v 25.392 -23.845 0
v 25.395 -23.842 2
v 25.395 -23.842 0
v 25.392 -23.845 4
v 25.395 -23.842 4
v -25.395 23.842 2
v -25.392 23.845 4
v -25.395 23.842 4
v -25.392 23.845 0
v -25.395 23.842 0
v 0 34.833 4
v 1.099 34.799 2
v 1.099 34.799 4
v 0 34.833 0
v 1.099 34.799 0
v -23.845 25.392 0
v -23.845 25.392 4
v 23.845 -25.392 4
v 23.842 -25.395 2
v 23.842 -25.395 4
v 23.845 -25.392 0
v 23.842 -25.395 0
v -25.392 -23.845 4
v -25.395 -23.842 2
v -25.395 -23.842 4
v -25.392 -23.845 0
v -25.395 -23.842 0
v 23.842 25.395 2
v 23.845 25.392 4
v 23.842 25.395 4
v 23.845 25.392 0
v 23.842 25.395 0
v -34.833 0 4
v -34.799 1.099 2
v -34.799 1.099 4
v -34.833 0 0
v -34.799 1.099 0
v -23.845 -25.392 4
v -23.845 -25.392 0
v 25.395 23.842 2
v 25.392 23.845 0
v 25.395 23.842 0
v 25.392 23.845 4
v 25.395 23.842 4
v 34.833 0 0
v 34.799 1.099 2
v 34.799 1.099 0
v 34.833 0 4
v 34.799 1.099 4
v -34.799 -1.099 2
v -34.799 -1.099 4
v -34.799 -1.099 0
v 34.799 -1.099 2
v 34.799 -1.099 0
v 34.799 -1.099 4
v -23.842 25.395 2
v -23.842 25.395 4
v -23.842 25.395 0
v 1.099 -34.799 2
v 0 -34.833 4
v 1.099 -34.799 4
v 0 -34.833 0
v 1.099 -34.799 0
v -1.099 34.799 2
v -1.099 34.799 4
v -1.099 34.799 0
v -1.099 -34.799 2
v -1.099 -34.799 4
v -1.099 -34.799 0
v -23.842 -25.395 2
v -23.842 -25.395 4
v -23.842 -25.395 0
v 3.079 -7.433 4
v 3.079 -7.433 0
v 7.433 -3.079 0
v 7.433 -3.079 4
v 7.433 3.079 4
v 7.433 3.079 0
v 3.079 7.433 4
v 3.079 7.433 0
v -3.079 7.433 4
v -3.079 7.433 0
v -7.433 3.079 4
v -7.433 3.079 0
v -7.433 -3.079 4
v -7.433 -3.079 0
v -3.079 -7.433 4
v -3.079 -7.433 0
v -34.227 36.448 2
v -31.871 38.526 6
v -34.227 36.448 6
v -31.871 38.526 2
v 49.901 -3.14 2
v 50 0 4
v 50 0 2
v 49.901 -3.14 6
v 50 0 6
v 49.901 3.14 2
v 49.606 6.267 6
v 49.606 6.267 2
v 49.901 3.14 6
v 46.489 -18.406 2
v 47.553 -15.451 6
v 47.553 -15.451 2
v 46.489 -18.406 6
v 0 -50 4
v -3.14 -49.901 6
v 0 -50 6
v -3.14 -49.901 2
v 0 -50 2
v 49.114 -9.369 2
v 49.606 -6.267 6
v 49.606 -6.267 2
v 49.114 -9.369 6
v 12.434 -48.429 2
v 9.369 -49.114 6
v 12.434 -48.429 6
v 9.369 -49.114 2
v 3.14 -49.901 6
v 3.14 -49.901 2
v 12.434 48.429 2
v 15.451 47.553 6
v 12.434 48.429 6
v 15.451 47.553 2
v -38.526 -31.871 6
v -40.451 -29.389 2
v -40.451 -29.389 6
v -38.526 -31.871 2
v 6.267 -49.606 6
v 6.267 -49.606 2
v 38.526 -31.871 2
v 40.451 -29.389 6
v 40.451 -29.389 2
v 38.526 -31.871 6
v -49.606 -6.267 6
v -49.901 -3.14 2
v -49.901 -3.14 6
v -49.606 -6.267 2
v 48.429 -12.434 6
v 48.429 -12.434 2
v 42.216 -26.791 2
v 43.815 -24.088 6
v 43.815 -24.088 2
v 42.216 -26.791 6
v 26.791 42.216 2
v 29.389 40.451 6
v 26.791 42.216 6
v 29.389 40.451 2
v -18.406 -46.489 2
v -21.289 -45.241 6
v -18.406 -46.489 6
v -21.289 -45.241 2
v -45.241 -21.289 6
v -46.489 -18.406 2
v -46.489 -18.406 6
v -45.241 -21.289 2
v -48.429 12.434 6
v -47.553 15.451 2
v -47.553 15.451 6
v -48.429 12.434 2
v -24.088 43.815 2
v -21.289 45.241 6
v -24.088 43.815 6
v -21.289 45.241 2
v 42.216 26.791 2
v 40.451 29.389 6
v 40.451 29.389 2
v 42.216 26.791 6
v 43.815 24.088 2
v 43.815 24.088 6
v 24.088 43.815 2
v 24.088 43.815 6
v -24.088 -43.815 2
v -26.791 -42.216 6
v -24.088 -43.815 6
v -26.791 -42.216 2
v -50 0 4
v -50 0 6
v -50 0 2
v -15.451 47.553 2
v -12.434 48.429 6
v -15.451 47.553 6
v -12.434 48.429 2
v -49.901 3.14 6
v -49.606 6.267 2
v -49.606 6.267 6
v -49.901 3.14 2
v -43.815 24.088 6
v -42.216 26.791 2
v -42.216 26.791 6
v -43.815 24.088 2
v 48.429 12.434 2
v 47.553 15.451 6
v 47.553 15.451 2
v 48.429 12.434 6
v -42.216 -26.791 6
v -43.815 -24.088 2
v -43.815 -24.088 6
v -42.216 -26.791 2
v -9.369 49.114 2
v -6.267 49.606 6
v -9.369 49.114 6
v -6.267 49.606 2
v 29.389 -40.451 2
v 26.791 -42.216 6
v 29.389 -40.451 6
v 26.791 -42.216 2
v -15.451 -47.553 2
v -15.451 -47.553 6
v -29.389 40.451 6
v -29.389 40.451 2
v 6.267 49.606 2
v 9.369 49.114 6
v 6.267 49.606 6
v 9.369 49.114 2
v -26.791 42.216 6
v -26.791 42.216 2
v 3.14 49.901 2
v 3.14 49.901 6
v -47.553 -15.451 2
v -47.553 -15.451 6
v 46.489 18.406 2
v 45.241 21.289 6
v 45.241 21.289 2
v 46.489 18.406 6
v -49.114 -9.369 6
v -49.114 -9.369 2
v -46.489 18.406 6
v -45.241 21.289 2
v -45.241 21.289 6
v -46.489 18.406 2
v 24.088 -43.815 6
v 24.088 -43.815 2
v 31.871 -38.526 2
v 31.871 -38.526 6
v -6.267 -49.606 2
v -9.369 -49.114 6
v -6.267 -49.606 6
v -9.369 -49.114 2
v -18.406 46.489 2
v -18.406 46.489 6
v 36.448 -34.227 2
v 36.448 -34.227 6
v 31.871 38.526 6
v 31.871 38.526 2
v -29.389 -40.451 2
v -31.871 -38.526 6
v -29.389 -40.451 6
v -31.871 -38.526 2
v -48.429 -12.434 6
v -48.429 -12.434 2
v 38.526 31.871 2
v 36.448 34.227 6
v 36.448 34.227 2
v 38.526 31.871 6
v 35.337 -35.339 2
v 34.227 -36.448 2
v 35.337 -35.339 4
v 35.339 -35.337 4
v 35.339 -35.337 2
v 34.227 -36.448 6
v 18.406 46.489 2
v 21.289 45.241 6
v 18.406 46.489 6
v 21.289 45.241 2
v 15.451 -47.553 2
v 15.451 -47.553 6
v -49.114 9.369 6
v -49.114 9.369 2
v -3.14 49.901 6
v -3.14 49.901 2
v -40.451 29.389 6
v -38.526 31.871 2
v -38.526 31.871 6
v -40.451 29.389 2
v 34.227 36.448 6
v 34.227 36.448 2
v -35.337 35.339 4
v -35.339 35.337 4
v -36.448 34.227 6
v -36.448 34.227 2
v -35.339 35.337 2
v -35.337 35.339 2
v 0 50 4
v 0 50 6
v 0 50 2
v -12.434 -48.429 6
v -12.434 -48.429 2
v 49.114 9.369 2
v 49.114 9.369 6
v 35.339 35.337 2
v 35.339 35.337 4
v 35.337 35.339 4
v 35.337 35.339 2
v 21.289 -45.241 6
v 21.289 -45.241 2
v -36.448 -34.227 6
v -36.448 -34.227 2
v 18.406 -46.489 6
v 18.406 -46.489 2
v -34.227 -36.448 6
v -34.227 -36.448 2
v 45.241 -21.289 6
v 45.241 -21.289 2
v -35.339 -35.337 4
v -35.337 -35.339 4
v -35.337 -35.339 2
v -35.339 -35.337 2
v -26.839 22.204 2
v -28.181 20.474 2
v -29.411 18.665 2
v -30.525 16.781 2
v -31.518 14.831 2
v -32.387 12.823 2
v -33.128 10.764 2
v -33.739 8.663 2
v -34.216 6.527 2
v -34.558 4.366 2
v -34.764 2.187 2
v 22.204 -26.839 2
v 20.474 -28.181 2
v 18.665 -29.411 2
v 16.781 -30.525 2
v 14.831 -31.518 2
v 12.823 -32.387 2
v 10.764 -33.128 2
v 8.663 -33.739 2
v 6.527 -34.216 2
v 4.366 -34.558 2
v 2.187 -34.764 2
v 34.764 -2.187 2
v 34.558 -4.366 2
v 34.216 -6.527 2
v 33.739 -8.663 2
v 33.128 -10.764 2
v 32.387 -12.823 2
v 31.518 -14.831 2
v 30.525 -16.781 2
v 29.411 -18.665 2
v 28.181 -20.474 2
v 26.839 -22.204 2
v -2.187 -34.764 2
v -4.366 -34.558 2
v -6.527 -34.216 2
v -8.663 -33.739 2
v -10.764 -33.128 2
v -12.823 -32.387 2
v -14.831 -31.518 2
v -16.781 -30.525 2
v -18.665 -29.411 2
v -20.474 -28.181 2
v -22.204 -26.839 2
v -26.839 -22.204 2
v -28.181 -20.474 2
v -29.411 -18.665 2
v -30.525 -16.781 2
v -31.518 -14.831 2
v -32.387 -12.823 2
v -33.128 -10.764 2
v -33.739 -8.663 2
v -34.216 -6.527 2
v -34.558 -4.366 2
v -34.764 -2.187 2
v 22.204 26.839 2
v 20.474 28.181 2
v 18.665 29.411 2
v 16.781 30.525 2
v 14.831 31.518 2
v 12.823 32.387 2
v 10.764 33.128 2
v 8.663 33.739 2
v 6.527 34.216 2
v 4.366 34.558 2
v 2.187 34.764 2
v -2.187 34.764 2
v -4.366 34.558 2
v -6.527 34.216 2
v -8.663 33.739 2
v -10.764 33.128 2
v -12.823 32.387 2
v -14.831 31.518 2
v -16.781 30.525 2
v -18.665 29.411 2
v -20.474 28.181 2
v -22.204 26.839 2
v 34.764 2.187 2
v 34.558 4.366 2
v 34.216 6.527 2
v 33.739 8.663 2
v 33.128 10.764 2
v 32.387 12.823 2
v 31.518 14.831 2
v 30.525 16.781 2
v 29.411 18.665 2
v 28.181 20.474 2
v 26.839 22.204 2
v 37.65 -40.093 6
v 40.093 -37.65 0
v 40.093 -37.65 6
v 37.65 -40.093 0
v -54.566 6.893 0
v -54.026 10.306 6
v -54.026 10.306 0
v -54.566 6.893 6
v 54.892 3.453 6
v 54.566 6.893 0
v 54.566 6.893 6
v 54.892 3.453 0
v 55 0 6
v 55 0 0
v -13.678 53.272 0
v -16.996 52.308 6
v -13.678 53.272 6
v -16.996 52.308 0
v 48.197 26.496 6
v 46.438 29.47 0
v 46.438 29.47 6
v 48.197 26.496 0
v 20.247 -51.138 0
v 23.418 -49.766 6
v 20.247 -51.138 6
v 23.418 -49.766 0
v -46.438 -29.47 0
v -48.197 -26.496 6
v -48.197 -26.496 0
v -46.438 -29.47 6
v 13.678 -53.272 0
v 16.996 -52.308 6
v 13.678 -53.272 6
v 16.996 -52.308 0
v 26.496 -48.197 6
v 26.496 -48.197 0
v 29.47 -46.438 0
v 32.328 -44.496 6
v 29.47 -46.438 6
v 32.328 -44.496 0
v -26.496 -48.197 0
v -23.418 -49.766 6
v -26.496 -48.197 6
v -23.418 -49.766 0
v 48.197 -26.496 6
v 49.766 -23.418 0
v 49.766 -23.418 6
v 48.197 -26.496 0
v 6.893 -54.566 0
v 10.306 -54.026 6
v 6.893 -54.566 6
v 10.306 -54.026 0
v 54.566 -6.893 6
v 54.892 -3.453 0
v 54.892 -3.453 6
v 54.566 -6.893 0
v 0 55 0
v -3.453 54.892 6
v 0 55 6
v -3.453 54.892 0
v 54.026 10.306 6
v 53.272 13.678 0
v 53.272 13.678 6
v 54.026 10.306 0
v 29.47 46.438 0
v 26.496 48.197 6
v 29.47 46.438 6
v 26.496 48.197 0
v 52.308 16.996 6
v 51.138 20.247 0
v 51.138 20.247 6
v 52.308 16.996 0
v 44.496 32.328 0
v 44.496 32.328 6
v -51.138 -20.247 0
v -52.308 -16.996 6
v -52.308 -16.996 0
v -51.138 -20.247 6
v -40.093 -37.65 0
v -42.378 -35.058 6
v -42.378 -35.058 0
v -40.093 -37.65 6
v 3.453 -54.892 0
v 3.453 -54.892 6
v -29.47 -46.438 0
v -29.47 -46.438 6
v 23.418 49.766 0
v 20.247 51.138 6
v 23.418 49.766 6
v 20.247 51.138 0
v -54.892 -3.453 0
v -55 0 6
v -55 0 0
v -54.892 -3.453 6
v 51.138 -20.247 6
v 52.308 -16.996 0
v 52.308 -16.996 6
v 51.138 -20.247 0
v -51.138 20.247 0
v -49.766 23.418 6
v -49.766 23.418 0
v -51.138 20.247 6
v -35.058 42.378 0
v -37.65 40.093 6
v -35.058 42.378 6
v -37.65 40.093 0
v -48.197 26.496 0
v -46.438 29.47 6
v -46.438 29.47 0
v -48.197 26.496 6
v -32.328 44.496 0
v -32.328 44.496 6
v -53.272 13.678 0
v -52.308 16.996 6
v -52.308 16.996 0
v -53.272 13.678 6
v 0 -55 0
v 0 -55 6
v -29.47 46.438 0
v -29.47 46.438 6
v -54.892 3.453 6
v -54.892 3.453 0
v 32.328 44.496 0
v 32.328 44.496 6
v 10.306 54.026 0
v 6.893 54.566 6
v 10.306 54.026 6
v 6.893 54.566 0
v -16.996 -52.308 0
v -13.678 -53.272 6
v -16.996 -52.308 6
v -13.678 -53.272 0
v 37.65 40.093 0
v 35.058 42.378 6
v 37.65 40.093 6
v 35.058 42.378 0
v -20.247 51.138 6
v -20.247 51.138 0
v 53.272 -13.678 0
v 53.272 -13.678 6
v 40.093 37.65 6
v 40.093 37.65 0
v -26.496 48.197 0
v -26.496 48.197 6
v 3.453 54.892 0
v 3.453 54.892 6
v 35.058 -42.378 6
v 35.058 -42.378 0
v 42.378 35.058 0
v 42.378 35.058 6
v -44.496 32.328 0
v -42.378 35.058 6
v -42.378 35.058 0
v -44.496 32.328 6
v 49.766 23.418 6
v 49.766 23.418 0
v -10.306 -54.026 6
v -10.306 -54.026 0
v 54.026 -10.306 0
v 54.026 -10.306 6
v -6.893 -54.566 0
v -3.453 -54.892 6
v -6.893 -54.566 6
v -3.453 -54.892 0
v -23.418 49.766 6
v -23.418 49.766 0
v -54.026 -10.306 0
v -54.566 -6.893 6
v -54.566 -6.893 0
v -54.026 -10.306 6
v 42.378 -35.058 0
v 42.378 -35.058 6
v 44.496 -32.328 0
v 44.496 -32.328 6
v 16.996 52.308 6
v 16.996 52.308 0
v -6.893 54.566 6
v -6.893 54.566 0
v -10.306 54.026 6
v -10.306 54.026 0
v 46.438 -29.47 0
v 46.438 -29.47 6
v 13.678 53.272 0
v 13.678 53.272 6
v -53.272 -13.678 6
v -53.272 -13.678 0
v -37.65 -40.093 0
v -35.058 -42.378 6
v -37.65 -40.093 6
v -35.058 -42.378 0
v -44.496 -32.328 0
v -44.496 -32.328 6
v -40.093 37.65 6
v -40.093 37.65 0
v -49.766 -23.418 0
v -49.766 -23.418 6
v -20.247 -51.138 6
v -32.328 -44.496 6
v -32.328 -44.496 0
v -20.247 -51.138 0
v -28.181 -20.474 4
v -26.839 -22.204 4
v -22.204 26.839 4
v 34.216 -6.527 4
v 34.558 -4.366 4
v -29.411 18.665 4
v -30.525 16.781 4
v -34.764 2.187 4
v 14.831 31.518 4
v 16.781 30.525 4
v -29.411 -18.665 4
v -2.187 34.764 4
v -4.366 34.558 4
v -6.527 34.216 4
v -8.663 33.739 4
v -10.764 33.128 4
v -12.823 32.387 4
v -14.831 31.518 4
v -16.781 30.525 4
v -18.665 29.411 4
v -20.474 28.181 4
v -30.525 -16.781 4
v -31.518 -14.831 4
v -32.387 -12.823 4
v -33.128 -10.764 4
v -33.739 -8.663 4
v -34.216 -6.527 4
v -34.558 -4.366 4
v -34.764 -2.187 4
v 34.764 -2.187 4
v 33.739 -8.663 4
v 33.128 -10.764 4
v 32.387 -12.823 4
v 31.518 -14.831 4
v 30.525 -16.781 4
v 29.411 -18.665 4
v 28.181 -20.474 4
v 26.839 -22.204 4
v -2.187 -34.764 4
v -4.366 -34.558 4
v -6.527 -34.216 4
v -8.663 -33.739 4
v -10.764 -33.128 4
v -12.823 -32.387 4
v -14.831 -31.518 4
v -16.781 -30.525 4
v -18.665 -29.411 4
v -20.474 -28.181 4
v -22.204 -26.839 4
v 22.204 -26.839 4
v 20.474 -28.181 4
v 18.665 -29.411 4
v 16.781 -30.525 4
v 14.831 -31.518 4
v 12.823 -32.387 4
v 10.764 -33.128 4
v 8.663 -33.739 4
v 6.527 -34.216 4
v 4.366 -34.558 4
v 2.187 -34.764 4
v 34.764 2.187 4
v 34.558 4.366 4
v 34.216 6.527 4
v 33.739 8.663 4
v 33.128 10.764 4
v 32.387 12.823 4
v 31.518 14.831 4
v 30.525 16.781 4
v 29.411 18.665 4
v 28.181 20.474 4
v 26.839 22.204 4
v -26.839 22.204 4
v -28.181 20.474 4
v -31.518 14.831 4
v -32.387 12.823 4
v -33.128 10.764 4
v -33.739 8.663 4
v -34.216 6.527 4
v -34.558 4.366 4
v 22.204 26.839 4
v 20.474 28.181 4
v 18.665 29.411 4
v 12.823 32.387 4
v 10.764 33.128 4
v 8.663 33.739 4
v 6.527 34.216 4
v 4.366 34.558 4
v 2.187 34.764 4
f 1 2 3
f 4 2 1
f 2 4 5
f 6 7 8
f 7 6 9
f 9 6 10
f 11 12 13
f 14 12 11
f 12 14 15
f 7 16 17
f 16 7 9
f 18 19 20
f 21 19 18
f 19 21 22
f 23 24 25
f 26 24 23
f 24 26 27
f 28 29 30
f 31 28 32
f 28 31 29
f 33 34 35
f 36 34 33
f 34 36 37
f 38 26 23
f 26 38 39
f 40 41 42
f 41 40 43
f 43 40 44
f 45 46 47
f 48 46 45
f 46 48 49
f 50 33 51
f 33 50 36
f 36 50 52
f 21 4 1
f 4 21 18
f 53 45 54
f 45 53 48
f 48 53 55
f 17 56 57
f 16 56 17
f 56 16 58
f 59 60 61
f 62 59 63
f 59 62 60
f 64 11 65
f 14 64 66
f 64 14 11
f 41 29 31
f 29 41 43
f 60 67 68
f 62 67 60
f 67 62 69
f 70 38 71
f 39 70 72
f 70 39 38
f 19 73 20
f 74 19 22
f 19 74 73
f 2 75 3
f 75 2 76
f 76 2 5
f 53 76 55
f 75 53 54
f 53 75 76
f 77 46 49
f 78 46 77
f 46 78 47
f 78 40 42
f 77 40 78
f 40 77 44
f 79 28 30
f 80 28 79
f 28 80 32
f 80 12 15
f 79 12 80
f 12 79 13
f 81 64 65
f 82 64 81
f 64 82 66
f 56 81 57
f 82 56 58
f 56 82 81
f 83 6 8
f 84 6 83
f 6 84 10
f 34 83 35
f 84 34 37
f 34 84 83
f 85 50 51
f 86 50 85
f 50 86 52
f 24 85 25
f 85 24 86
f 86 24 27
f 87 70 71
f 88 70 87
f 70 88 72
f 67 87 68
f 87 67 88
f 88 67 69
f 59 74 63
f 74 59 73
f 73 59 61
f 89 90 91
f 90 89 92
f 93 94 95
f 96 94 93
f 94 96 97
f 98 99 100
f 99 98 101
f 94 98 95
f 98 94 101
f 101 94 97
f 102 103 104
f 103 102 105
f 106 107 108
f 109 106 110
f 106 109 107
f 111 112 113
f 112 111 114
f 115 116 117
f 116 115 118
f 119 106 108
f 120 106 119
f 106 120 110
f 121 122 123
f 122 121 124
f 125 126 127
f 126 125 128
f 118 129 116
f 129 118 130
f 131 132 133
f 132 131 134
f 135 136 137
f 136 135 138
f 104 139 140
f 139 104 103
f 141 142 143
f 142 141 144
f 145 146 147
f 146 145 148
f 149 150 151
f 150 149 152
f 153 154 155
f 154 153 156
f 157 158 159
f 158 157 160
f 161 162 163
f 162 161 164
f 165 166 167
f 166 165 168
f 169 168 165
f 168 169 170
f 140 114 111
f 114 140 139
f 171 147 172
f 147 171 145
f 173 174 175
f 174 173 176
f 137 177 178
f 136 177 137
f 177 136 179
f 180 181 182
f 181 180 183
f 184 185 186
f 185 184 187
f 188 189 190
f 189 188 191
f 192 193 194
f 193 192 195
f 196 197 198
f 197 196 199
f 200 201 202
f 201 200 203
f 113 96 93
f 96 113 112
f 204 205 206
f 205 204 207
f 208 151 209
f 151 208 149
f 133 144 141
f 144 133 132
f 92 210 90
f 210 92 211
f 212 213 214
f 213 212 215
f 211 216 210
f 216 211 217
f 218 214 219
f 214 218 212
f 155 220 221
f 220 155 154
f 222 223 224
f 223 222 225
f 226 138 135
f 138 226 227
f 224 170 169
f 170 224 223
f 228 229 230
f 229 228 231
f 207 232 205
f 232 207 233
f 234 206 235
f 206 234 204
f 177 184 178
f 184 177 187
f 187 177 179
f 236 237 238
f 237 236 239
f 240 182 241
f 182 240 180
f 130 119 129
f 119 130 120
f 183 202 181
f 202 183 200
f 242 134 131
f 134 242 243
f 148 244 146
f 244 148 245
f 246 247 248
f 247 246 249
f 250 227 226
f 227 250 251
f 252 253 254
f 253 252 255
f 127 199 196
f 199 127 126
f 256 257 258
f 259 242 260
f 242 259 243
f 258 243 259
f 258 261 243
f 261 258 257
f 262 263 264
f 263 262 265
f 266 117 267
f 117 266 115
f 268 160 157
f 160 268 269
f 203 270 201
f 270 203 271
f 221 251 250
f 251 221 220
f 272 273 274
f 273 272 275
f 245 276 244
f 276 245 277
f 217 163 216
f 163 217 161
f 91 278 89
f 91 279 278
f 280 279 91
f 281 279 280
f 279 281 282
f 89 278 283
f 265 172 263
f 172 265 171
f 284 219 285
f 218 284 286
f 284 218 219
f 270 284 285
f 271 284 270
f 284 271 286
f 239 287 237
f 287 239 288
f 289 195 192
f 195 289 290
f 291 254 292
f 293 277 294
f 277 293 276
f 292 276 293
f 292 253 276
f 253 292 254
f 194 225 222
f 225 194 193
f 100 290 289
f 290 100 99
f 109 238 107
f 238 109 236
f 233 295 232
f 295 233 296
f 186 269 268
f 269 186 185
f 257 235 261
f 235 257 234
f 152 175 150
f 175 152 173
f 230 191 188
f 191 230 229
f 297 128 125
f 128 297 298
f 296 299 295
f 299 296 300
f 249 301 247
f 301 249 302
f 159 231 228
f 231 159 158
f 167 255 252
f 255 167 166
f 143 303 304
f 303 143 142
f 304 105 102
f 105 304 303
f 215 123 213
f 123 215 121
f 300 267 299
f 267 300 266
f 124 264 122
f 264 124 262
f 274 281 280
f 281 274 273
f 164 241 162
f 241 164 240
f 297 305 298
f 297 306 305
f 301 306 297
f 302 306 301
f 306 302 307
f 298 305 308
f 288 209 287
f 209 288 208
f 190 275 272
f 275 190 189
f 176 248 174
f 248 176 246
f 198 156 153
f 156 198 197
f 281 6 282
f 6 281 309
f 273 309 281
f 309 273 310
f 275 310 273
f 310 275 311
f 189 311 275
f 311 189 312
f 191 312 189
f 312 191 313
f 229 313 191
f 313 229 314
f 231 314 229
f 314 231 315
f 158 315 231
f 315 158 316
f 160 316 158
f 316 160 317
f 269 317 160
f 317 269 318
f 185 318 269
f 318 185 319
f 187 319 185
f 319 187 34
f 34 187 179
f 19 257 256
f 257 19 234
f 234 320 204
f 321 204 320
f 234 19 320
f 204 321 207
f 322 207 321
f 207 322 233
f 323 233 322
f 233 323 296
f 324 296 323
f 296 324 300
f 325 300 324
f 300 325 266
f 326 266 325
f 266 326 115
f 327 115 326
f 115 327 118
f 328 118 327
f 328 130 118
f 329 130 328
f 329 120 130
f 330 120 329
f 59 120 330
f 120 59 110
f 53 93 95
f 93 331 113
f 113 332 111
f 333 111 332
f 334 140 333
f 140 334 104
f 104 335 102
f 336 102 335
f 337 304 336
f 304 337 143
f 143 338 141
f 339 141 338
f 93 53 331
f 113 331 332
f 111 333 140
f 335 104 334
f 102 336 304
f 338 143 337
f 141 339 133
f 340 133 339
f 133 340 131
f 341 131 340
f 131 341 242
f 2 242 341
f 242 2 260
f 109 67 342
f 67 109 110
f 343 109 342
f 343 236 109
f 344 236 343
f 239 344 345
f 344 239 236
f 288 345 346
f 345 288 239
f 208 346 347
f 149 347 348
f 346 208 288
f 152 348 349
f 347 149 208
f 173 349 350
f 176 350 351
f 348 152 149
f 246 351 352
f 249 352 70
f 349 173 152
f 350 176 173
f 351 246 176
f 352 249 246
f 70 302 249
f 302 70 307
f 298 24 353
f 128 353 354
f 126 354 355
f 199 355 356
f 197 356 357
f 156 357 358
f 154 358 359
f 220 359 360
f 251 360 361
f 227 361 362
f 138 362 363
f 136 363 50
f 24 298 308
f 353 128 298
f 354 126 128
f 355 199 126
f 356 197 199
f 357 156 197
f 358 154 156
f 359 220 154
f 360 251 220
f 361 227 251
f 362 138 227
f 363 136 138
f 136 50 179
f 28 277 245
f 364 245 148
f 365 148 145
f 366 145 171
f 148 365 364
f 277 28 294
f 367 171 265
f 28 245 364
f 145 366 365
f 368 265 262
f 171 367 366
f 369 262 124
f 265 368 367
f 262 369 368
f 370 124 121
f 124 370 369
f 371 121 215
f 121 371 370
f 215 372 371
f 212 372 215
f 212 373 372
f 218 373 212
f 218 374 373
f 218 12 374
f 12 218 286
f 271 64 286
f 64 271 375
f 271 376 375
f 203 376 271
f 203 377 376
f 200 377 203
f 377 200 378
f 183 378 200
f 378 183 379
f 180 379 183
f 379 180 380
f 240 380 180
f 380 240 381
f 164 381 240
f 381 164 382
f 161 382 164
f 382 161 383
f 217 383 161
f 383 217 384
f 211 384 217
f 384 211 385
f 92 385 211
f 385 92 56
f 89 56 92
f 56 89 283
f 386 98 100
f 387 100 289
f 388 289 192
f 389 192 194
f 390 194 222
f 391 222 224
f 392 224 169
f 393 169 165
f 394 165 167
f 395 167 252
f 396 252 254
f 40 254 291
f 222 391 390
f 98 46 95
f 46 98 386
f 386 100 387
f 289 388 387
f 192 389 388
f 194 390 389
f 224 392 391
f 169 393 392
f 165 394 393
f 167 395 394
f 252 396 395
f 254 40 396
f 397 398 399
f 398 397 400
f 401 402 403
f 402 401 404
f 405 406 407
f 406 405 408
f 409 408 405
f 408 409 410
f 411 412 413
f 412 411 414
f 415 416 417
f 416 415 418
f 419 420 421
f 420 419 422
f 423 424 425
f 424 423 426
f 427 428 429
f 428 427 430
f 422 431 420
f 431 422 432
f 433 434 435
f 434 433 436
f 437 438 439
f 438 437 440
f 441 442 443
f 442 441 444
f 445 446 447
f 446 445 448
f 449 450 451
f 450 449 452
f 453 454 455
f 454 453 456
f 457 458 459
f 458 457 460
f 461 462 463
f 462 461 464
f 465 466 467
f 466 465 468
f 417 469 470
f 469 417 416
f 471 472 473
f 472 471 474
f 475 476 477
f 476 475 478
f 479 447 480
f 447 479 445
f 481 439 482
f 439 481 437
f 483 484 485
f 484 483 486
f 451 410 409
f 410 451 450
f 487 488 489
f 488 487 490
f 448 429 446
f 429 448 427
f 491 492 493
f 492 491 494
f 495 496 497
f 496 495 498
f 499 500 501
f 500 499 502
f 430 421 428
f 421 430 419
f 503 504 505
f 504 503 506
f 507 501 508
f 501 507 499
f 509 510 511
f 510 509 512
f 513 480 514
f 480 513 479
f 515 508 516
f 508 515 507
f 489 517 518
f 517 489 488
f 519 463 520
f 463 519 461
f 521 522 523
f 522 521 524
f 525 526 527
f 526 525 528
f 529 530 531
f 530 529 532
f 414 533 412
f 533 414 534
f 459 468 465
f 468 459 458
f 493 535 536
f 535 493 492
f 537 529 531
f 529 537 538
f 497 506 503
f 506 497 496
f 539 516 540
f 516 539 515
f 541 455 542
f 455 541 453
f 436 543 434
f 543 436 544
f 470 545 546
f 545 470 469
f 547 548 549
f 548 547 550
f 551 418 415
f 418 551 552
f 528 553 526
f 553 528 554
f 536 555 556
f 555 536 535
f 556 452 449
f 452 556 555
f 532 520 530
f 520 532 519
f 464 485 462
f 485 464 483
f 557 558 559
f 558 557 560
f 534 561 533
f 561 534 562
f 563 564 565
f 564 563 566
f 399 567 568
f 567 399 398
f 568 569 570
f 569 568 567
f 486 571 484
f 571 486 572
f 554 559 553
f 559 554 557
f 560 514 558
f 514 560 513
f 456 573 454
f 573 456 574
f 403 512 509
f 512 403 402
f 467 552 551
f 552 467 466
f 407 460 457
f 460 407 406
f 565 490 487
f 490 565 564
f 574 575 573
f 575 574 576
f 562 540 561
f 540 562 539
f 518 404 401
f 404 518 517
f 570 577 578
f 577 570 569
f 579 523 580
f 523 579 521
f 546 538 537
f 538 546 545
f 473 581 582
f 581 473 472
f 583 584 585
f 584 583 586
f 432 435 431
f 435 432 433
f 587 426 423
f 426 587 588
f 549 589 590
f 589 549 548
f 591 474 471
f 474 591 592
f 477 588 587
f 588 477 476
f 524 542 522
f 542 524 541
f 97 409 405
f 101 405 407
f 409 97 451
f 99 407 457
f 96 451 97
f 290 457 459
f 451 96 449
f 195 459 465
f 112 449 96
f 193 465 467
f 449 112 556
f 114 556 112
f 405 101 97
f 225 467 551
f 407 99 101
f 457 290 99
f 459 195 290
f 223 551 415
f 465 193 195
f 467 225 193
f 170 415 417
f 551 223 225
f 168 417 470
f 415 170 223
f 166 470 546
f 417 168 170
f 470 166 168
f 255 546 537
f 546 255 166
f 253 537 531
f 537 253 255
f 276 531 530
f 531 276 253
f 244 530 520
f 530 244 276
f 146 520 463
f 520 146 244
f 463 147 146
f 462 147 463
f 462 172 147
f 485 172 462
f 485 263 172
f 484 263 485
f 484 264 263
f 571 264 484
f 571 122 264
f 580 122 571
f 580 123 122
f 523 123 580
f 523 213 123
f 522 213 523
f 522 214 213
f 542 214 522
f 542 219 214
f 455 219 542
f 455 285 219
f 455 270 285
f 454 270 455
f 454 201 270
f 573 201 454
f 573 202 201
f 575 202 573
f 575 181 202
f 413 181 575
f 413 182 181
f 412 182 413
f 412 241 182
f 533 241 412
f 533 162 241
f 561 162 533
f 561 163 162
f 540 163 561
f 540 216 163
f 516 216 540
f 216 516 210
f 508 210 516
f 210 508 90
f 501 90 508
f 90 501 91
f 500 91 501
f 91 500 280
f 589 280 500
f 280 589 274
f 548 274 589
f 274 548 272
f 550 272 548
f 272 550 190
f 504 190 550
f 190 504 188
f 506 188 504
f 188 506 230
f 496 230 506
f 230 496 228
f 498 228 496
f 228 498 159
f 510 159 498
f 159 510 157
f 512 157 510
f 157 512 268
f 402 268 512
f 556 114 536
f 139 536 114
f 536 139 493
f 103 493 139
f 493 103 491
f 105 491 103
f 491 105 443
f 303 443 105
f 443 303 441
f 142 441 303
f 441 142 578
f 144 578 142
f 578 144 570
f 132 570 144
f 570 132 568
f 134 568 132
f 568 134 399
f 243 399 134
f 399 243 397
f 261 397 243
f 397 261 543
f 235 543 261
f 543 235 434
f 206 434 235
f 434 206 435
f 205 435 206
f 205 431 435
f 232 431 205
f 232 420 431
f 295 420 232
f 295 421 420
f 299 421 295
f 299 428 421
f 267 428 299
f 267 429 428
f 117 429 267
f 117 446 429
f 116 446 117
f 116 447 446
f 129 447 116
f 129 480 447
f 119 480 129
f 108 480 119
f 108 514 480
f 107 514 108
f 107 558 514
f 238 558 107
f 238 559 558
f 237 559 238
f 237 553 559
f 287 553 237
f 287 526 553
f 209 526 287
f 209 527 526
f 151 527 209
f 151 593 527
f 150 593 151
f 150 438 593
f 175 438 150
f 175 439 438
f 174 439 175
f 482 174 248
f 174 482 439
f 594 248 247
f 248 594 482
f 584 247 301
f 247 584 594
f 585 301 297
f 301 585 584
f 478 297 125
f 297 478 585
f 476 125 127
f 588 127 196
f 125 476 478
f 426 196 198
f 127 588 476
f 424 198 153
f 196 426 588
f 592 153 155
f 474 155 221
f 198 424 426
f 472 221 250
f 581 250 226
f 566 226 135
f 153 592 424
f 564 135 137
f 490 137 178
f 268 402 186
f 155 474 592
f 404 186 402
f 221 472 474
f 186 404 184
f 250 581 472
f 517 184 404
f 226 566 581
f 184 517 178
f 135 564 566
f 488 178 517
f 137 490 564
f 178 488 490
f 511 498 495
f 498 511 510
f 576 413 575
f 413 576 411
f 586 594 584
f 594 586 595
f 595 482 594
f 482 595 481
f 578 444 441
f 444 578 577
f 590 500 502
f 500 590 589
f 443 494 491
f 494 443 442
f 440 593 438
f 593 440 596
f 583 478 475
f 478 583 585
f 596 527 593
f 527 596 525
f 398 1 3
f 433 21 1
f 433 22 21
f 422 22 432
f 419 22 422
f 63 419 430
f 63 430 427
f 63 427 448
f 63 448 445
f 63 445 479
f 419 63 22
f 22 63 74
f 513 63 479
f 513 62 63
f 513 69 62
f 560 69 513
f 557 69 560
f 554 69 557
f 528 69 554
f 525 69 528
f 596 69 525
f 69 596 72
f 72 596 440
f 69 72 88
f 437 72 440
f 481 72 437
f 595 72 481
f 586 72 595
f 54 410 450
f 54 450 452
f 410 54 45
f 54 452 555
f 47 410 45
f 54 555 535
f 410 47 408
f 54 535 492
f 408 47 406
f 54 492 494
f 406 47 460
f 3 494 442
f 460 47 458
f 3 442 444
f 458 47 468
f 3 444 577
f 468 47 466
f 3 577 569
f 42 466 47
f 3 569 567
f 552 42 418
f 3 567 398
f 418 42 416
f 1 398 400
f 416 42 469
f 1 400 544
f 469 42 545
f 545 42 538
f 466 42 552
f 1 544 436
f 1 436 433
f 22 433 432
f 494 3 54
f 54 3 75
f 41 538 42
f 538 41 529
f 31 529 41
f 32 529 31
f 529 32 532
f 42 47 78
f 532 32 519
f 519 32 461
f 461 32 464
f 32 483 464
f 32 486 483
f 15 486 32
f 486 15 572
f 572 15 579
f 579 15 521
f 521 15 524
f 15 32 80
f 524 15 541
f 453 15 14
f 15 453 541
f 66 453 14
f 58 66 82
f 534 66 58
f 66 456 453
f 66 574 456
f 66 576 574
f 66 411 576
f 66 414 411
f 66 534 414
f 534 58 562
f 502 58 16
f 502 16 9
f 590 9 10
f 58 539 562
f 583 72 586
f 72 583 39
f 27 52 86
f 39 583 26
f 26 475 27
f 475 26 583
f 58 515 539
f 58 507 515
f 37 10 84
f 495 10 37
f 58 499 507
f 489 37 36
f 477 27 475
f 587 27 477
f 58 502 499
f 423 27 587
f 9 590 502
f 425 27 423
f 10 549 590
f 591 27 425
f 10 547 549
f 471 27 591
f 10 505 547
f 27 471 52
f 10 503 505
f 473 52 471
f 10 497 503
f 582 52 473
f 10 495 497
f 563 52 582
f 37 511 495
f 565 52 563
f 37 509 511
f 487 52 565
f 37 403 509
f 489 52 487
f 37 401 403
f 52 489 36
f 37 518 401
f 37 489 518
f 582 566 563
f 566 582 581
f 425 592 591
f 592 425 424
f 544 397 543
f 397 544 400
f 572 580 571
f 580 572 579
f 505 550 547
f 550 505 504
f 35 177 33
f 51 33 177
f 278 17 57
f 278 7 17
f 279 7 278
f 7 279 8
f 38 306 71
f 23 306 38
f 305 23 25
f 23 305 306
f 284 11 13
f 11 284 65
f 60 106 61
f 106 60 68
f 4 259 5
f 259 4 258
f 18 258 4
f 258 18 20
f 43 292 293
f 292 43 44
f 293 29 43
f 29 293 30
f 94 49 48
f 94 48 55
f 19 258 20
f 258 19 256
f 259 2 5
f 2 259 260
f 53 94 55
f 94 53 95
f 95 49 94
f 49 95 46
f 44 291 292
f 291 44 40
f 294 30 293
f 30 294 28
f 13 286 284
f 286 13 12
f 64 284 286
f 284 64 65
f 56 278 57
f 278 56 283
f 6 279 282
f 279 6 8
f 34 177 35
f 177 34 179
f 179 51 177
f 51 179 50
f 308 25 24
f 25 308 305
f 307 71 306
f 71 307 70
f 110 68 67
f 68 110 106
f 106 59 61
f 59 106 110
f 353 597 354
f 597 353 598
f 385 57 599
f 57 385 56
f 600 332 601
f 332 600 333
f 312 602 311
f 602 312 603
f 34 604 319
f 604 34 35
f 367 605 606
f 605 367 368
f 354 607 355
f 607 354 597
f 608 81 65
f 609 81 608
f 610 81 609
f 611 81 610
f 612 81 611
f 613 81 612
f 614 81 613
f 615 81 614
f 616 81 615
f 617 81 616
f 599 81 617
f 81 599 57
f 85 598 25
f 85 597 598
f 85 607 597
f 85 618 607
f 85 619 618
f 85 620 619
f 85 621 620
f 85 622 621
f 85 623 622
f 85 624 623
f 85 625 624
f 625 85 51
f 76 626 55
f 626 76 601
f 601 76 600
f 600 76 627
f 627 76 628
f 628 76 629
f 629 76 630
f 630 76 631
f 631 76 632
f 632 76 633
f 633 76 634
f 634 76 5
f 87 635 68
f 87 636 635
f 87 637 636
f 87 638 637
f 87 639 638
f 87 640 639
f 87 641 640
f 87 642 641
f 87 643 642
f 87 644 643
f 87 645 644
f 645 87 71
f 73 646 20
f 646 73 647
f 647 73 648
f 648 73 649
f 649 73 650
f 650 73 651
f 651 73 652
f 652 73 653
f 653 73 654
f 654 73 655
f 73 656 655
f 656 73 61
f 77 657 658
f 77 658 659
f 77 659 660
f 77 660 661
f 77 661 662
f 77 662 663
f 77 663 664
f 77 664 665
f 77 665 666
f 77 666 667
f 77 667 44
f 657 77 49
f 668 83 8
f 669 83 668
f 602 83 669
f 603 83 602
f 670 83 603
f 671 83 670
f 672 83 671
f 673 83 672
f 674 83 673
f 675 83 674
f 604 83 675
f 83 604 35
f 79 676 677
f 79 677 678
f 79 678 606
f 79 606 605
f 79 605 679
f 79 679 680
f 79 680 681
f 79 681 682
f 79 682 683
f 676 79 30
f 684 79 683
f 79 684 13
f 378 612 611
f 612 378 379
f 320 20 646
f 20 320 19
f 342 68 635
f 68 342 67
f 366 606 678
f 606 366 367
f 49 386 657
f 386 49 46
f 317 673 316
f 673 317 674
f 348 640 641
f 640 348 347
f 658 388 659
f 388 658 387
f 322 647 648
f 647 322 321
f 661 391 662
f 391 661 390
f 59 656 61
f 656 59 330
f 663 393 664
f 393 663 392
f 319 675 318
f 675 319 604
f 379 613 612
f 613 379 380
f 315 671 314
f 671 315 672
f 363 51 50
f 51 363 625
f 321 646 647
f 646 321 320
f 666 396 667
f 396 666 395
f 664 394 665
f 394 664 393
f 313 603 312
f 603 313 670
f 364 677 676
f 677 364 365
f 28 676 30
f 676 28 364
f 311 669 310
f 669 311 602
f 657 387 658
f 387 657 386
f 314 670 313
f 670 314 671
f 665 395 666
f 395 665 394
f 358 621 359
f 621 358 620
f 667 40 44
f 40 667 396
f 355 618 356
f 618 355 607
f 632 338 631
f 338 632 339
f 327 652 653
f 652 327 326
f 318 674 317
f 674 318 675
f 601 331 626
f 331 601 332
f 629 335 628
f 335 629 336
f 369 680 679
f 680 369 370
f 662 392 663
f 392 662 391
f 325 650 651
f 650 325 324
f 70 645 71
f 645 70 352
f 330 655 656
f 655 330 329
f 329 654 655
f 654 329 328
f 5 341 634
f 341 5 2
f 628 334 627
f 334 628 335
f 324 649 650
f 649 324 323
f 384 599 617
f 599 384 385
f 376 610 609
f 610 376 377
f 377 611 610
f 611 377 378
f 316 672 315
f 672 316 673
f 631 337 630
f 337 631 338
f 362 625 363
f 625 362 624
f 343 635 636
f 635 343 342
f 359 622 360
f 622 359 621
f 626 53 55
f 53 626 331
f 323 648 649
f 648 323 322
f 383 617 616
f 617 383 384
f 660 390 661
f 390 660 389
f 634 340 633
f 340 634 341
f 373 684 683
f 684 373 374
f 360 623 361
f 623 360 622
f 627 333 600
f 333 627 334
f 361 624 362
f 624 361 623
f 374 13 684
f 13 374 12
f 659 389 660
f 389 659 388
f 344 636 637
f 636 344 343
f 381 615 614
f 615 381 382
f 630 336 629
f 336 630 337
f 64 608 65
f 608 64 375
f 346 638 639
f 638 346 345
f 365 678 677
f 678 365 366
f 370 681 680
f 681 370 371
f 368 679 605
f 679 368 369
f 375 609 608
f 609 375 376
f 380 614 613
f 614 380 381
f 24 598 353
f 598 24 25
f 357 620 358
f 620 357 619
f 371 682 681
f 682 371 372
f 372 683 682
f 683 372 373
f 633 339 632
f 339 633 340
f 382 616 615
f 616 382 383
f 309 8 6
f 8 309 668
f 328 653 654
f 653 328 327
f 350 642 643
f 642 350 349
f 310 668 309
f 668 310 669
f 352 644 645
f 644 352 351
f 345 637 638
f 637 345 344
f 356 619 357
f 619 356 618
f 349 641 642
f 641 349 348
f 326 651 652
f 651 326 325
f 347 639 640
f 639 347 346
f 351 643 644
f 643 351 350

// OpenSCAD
$fn=100;

m1 = 0.159789289; // inner logo multiplier
m2 = 0.69666374; // logo circle multiplier

innerRadius = 50;
//innerWidth = 100/sqrt(2);
circleRadius = m2 * innerRadius;
innerLogoRadius = m1 * innerRadius;


module star() 
{
    points = [ [0, 0], [innerLogoRadius * sin(-22.7), innerLogoRadius * cos(-22.7)],[0, innerRadius],[innerLogoRadius * sin(22.7), innerLogoRadius * cos(22.7)]];

    linear_extrude(4)
    union()
    {
        for(a=[0:45:315])
        {
            rotate([0,0,a])
            polygon(points);
        }
    }
}


//star();
// coaster body
difference()
    {
    
        cylinder(6,55,55);
        union()
        {
            translate([0,0,2])
            cylinder(4.1,innerRadius,innerRadius);
            translate([0,0,-.1])
            intersection()
            {
                cylinder(10,circleRadius,circleRadius);
                translate([0,0,-.1])
                scale([1,1,4])
                star();    
            }
        }
    }

//Star Tips
difference()
{
    star();    
    translate([0,0,-.1])
    cylinder(6,circleRadius,circleRadius);
}

//circle minus star
difference()
{
    cylinder(4,circleRadius,circleRadius);
    translate([0,0,-.1])
    scale([1,1,2])
    star();    
}


*intersection()
{
    cylinder(10,circleRadius,circleRadius);
    translate([0,0,-.1])
    scale([1,1,4])
    star();    
}
